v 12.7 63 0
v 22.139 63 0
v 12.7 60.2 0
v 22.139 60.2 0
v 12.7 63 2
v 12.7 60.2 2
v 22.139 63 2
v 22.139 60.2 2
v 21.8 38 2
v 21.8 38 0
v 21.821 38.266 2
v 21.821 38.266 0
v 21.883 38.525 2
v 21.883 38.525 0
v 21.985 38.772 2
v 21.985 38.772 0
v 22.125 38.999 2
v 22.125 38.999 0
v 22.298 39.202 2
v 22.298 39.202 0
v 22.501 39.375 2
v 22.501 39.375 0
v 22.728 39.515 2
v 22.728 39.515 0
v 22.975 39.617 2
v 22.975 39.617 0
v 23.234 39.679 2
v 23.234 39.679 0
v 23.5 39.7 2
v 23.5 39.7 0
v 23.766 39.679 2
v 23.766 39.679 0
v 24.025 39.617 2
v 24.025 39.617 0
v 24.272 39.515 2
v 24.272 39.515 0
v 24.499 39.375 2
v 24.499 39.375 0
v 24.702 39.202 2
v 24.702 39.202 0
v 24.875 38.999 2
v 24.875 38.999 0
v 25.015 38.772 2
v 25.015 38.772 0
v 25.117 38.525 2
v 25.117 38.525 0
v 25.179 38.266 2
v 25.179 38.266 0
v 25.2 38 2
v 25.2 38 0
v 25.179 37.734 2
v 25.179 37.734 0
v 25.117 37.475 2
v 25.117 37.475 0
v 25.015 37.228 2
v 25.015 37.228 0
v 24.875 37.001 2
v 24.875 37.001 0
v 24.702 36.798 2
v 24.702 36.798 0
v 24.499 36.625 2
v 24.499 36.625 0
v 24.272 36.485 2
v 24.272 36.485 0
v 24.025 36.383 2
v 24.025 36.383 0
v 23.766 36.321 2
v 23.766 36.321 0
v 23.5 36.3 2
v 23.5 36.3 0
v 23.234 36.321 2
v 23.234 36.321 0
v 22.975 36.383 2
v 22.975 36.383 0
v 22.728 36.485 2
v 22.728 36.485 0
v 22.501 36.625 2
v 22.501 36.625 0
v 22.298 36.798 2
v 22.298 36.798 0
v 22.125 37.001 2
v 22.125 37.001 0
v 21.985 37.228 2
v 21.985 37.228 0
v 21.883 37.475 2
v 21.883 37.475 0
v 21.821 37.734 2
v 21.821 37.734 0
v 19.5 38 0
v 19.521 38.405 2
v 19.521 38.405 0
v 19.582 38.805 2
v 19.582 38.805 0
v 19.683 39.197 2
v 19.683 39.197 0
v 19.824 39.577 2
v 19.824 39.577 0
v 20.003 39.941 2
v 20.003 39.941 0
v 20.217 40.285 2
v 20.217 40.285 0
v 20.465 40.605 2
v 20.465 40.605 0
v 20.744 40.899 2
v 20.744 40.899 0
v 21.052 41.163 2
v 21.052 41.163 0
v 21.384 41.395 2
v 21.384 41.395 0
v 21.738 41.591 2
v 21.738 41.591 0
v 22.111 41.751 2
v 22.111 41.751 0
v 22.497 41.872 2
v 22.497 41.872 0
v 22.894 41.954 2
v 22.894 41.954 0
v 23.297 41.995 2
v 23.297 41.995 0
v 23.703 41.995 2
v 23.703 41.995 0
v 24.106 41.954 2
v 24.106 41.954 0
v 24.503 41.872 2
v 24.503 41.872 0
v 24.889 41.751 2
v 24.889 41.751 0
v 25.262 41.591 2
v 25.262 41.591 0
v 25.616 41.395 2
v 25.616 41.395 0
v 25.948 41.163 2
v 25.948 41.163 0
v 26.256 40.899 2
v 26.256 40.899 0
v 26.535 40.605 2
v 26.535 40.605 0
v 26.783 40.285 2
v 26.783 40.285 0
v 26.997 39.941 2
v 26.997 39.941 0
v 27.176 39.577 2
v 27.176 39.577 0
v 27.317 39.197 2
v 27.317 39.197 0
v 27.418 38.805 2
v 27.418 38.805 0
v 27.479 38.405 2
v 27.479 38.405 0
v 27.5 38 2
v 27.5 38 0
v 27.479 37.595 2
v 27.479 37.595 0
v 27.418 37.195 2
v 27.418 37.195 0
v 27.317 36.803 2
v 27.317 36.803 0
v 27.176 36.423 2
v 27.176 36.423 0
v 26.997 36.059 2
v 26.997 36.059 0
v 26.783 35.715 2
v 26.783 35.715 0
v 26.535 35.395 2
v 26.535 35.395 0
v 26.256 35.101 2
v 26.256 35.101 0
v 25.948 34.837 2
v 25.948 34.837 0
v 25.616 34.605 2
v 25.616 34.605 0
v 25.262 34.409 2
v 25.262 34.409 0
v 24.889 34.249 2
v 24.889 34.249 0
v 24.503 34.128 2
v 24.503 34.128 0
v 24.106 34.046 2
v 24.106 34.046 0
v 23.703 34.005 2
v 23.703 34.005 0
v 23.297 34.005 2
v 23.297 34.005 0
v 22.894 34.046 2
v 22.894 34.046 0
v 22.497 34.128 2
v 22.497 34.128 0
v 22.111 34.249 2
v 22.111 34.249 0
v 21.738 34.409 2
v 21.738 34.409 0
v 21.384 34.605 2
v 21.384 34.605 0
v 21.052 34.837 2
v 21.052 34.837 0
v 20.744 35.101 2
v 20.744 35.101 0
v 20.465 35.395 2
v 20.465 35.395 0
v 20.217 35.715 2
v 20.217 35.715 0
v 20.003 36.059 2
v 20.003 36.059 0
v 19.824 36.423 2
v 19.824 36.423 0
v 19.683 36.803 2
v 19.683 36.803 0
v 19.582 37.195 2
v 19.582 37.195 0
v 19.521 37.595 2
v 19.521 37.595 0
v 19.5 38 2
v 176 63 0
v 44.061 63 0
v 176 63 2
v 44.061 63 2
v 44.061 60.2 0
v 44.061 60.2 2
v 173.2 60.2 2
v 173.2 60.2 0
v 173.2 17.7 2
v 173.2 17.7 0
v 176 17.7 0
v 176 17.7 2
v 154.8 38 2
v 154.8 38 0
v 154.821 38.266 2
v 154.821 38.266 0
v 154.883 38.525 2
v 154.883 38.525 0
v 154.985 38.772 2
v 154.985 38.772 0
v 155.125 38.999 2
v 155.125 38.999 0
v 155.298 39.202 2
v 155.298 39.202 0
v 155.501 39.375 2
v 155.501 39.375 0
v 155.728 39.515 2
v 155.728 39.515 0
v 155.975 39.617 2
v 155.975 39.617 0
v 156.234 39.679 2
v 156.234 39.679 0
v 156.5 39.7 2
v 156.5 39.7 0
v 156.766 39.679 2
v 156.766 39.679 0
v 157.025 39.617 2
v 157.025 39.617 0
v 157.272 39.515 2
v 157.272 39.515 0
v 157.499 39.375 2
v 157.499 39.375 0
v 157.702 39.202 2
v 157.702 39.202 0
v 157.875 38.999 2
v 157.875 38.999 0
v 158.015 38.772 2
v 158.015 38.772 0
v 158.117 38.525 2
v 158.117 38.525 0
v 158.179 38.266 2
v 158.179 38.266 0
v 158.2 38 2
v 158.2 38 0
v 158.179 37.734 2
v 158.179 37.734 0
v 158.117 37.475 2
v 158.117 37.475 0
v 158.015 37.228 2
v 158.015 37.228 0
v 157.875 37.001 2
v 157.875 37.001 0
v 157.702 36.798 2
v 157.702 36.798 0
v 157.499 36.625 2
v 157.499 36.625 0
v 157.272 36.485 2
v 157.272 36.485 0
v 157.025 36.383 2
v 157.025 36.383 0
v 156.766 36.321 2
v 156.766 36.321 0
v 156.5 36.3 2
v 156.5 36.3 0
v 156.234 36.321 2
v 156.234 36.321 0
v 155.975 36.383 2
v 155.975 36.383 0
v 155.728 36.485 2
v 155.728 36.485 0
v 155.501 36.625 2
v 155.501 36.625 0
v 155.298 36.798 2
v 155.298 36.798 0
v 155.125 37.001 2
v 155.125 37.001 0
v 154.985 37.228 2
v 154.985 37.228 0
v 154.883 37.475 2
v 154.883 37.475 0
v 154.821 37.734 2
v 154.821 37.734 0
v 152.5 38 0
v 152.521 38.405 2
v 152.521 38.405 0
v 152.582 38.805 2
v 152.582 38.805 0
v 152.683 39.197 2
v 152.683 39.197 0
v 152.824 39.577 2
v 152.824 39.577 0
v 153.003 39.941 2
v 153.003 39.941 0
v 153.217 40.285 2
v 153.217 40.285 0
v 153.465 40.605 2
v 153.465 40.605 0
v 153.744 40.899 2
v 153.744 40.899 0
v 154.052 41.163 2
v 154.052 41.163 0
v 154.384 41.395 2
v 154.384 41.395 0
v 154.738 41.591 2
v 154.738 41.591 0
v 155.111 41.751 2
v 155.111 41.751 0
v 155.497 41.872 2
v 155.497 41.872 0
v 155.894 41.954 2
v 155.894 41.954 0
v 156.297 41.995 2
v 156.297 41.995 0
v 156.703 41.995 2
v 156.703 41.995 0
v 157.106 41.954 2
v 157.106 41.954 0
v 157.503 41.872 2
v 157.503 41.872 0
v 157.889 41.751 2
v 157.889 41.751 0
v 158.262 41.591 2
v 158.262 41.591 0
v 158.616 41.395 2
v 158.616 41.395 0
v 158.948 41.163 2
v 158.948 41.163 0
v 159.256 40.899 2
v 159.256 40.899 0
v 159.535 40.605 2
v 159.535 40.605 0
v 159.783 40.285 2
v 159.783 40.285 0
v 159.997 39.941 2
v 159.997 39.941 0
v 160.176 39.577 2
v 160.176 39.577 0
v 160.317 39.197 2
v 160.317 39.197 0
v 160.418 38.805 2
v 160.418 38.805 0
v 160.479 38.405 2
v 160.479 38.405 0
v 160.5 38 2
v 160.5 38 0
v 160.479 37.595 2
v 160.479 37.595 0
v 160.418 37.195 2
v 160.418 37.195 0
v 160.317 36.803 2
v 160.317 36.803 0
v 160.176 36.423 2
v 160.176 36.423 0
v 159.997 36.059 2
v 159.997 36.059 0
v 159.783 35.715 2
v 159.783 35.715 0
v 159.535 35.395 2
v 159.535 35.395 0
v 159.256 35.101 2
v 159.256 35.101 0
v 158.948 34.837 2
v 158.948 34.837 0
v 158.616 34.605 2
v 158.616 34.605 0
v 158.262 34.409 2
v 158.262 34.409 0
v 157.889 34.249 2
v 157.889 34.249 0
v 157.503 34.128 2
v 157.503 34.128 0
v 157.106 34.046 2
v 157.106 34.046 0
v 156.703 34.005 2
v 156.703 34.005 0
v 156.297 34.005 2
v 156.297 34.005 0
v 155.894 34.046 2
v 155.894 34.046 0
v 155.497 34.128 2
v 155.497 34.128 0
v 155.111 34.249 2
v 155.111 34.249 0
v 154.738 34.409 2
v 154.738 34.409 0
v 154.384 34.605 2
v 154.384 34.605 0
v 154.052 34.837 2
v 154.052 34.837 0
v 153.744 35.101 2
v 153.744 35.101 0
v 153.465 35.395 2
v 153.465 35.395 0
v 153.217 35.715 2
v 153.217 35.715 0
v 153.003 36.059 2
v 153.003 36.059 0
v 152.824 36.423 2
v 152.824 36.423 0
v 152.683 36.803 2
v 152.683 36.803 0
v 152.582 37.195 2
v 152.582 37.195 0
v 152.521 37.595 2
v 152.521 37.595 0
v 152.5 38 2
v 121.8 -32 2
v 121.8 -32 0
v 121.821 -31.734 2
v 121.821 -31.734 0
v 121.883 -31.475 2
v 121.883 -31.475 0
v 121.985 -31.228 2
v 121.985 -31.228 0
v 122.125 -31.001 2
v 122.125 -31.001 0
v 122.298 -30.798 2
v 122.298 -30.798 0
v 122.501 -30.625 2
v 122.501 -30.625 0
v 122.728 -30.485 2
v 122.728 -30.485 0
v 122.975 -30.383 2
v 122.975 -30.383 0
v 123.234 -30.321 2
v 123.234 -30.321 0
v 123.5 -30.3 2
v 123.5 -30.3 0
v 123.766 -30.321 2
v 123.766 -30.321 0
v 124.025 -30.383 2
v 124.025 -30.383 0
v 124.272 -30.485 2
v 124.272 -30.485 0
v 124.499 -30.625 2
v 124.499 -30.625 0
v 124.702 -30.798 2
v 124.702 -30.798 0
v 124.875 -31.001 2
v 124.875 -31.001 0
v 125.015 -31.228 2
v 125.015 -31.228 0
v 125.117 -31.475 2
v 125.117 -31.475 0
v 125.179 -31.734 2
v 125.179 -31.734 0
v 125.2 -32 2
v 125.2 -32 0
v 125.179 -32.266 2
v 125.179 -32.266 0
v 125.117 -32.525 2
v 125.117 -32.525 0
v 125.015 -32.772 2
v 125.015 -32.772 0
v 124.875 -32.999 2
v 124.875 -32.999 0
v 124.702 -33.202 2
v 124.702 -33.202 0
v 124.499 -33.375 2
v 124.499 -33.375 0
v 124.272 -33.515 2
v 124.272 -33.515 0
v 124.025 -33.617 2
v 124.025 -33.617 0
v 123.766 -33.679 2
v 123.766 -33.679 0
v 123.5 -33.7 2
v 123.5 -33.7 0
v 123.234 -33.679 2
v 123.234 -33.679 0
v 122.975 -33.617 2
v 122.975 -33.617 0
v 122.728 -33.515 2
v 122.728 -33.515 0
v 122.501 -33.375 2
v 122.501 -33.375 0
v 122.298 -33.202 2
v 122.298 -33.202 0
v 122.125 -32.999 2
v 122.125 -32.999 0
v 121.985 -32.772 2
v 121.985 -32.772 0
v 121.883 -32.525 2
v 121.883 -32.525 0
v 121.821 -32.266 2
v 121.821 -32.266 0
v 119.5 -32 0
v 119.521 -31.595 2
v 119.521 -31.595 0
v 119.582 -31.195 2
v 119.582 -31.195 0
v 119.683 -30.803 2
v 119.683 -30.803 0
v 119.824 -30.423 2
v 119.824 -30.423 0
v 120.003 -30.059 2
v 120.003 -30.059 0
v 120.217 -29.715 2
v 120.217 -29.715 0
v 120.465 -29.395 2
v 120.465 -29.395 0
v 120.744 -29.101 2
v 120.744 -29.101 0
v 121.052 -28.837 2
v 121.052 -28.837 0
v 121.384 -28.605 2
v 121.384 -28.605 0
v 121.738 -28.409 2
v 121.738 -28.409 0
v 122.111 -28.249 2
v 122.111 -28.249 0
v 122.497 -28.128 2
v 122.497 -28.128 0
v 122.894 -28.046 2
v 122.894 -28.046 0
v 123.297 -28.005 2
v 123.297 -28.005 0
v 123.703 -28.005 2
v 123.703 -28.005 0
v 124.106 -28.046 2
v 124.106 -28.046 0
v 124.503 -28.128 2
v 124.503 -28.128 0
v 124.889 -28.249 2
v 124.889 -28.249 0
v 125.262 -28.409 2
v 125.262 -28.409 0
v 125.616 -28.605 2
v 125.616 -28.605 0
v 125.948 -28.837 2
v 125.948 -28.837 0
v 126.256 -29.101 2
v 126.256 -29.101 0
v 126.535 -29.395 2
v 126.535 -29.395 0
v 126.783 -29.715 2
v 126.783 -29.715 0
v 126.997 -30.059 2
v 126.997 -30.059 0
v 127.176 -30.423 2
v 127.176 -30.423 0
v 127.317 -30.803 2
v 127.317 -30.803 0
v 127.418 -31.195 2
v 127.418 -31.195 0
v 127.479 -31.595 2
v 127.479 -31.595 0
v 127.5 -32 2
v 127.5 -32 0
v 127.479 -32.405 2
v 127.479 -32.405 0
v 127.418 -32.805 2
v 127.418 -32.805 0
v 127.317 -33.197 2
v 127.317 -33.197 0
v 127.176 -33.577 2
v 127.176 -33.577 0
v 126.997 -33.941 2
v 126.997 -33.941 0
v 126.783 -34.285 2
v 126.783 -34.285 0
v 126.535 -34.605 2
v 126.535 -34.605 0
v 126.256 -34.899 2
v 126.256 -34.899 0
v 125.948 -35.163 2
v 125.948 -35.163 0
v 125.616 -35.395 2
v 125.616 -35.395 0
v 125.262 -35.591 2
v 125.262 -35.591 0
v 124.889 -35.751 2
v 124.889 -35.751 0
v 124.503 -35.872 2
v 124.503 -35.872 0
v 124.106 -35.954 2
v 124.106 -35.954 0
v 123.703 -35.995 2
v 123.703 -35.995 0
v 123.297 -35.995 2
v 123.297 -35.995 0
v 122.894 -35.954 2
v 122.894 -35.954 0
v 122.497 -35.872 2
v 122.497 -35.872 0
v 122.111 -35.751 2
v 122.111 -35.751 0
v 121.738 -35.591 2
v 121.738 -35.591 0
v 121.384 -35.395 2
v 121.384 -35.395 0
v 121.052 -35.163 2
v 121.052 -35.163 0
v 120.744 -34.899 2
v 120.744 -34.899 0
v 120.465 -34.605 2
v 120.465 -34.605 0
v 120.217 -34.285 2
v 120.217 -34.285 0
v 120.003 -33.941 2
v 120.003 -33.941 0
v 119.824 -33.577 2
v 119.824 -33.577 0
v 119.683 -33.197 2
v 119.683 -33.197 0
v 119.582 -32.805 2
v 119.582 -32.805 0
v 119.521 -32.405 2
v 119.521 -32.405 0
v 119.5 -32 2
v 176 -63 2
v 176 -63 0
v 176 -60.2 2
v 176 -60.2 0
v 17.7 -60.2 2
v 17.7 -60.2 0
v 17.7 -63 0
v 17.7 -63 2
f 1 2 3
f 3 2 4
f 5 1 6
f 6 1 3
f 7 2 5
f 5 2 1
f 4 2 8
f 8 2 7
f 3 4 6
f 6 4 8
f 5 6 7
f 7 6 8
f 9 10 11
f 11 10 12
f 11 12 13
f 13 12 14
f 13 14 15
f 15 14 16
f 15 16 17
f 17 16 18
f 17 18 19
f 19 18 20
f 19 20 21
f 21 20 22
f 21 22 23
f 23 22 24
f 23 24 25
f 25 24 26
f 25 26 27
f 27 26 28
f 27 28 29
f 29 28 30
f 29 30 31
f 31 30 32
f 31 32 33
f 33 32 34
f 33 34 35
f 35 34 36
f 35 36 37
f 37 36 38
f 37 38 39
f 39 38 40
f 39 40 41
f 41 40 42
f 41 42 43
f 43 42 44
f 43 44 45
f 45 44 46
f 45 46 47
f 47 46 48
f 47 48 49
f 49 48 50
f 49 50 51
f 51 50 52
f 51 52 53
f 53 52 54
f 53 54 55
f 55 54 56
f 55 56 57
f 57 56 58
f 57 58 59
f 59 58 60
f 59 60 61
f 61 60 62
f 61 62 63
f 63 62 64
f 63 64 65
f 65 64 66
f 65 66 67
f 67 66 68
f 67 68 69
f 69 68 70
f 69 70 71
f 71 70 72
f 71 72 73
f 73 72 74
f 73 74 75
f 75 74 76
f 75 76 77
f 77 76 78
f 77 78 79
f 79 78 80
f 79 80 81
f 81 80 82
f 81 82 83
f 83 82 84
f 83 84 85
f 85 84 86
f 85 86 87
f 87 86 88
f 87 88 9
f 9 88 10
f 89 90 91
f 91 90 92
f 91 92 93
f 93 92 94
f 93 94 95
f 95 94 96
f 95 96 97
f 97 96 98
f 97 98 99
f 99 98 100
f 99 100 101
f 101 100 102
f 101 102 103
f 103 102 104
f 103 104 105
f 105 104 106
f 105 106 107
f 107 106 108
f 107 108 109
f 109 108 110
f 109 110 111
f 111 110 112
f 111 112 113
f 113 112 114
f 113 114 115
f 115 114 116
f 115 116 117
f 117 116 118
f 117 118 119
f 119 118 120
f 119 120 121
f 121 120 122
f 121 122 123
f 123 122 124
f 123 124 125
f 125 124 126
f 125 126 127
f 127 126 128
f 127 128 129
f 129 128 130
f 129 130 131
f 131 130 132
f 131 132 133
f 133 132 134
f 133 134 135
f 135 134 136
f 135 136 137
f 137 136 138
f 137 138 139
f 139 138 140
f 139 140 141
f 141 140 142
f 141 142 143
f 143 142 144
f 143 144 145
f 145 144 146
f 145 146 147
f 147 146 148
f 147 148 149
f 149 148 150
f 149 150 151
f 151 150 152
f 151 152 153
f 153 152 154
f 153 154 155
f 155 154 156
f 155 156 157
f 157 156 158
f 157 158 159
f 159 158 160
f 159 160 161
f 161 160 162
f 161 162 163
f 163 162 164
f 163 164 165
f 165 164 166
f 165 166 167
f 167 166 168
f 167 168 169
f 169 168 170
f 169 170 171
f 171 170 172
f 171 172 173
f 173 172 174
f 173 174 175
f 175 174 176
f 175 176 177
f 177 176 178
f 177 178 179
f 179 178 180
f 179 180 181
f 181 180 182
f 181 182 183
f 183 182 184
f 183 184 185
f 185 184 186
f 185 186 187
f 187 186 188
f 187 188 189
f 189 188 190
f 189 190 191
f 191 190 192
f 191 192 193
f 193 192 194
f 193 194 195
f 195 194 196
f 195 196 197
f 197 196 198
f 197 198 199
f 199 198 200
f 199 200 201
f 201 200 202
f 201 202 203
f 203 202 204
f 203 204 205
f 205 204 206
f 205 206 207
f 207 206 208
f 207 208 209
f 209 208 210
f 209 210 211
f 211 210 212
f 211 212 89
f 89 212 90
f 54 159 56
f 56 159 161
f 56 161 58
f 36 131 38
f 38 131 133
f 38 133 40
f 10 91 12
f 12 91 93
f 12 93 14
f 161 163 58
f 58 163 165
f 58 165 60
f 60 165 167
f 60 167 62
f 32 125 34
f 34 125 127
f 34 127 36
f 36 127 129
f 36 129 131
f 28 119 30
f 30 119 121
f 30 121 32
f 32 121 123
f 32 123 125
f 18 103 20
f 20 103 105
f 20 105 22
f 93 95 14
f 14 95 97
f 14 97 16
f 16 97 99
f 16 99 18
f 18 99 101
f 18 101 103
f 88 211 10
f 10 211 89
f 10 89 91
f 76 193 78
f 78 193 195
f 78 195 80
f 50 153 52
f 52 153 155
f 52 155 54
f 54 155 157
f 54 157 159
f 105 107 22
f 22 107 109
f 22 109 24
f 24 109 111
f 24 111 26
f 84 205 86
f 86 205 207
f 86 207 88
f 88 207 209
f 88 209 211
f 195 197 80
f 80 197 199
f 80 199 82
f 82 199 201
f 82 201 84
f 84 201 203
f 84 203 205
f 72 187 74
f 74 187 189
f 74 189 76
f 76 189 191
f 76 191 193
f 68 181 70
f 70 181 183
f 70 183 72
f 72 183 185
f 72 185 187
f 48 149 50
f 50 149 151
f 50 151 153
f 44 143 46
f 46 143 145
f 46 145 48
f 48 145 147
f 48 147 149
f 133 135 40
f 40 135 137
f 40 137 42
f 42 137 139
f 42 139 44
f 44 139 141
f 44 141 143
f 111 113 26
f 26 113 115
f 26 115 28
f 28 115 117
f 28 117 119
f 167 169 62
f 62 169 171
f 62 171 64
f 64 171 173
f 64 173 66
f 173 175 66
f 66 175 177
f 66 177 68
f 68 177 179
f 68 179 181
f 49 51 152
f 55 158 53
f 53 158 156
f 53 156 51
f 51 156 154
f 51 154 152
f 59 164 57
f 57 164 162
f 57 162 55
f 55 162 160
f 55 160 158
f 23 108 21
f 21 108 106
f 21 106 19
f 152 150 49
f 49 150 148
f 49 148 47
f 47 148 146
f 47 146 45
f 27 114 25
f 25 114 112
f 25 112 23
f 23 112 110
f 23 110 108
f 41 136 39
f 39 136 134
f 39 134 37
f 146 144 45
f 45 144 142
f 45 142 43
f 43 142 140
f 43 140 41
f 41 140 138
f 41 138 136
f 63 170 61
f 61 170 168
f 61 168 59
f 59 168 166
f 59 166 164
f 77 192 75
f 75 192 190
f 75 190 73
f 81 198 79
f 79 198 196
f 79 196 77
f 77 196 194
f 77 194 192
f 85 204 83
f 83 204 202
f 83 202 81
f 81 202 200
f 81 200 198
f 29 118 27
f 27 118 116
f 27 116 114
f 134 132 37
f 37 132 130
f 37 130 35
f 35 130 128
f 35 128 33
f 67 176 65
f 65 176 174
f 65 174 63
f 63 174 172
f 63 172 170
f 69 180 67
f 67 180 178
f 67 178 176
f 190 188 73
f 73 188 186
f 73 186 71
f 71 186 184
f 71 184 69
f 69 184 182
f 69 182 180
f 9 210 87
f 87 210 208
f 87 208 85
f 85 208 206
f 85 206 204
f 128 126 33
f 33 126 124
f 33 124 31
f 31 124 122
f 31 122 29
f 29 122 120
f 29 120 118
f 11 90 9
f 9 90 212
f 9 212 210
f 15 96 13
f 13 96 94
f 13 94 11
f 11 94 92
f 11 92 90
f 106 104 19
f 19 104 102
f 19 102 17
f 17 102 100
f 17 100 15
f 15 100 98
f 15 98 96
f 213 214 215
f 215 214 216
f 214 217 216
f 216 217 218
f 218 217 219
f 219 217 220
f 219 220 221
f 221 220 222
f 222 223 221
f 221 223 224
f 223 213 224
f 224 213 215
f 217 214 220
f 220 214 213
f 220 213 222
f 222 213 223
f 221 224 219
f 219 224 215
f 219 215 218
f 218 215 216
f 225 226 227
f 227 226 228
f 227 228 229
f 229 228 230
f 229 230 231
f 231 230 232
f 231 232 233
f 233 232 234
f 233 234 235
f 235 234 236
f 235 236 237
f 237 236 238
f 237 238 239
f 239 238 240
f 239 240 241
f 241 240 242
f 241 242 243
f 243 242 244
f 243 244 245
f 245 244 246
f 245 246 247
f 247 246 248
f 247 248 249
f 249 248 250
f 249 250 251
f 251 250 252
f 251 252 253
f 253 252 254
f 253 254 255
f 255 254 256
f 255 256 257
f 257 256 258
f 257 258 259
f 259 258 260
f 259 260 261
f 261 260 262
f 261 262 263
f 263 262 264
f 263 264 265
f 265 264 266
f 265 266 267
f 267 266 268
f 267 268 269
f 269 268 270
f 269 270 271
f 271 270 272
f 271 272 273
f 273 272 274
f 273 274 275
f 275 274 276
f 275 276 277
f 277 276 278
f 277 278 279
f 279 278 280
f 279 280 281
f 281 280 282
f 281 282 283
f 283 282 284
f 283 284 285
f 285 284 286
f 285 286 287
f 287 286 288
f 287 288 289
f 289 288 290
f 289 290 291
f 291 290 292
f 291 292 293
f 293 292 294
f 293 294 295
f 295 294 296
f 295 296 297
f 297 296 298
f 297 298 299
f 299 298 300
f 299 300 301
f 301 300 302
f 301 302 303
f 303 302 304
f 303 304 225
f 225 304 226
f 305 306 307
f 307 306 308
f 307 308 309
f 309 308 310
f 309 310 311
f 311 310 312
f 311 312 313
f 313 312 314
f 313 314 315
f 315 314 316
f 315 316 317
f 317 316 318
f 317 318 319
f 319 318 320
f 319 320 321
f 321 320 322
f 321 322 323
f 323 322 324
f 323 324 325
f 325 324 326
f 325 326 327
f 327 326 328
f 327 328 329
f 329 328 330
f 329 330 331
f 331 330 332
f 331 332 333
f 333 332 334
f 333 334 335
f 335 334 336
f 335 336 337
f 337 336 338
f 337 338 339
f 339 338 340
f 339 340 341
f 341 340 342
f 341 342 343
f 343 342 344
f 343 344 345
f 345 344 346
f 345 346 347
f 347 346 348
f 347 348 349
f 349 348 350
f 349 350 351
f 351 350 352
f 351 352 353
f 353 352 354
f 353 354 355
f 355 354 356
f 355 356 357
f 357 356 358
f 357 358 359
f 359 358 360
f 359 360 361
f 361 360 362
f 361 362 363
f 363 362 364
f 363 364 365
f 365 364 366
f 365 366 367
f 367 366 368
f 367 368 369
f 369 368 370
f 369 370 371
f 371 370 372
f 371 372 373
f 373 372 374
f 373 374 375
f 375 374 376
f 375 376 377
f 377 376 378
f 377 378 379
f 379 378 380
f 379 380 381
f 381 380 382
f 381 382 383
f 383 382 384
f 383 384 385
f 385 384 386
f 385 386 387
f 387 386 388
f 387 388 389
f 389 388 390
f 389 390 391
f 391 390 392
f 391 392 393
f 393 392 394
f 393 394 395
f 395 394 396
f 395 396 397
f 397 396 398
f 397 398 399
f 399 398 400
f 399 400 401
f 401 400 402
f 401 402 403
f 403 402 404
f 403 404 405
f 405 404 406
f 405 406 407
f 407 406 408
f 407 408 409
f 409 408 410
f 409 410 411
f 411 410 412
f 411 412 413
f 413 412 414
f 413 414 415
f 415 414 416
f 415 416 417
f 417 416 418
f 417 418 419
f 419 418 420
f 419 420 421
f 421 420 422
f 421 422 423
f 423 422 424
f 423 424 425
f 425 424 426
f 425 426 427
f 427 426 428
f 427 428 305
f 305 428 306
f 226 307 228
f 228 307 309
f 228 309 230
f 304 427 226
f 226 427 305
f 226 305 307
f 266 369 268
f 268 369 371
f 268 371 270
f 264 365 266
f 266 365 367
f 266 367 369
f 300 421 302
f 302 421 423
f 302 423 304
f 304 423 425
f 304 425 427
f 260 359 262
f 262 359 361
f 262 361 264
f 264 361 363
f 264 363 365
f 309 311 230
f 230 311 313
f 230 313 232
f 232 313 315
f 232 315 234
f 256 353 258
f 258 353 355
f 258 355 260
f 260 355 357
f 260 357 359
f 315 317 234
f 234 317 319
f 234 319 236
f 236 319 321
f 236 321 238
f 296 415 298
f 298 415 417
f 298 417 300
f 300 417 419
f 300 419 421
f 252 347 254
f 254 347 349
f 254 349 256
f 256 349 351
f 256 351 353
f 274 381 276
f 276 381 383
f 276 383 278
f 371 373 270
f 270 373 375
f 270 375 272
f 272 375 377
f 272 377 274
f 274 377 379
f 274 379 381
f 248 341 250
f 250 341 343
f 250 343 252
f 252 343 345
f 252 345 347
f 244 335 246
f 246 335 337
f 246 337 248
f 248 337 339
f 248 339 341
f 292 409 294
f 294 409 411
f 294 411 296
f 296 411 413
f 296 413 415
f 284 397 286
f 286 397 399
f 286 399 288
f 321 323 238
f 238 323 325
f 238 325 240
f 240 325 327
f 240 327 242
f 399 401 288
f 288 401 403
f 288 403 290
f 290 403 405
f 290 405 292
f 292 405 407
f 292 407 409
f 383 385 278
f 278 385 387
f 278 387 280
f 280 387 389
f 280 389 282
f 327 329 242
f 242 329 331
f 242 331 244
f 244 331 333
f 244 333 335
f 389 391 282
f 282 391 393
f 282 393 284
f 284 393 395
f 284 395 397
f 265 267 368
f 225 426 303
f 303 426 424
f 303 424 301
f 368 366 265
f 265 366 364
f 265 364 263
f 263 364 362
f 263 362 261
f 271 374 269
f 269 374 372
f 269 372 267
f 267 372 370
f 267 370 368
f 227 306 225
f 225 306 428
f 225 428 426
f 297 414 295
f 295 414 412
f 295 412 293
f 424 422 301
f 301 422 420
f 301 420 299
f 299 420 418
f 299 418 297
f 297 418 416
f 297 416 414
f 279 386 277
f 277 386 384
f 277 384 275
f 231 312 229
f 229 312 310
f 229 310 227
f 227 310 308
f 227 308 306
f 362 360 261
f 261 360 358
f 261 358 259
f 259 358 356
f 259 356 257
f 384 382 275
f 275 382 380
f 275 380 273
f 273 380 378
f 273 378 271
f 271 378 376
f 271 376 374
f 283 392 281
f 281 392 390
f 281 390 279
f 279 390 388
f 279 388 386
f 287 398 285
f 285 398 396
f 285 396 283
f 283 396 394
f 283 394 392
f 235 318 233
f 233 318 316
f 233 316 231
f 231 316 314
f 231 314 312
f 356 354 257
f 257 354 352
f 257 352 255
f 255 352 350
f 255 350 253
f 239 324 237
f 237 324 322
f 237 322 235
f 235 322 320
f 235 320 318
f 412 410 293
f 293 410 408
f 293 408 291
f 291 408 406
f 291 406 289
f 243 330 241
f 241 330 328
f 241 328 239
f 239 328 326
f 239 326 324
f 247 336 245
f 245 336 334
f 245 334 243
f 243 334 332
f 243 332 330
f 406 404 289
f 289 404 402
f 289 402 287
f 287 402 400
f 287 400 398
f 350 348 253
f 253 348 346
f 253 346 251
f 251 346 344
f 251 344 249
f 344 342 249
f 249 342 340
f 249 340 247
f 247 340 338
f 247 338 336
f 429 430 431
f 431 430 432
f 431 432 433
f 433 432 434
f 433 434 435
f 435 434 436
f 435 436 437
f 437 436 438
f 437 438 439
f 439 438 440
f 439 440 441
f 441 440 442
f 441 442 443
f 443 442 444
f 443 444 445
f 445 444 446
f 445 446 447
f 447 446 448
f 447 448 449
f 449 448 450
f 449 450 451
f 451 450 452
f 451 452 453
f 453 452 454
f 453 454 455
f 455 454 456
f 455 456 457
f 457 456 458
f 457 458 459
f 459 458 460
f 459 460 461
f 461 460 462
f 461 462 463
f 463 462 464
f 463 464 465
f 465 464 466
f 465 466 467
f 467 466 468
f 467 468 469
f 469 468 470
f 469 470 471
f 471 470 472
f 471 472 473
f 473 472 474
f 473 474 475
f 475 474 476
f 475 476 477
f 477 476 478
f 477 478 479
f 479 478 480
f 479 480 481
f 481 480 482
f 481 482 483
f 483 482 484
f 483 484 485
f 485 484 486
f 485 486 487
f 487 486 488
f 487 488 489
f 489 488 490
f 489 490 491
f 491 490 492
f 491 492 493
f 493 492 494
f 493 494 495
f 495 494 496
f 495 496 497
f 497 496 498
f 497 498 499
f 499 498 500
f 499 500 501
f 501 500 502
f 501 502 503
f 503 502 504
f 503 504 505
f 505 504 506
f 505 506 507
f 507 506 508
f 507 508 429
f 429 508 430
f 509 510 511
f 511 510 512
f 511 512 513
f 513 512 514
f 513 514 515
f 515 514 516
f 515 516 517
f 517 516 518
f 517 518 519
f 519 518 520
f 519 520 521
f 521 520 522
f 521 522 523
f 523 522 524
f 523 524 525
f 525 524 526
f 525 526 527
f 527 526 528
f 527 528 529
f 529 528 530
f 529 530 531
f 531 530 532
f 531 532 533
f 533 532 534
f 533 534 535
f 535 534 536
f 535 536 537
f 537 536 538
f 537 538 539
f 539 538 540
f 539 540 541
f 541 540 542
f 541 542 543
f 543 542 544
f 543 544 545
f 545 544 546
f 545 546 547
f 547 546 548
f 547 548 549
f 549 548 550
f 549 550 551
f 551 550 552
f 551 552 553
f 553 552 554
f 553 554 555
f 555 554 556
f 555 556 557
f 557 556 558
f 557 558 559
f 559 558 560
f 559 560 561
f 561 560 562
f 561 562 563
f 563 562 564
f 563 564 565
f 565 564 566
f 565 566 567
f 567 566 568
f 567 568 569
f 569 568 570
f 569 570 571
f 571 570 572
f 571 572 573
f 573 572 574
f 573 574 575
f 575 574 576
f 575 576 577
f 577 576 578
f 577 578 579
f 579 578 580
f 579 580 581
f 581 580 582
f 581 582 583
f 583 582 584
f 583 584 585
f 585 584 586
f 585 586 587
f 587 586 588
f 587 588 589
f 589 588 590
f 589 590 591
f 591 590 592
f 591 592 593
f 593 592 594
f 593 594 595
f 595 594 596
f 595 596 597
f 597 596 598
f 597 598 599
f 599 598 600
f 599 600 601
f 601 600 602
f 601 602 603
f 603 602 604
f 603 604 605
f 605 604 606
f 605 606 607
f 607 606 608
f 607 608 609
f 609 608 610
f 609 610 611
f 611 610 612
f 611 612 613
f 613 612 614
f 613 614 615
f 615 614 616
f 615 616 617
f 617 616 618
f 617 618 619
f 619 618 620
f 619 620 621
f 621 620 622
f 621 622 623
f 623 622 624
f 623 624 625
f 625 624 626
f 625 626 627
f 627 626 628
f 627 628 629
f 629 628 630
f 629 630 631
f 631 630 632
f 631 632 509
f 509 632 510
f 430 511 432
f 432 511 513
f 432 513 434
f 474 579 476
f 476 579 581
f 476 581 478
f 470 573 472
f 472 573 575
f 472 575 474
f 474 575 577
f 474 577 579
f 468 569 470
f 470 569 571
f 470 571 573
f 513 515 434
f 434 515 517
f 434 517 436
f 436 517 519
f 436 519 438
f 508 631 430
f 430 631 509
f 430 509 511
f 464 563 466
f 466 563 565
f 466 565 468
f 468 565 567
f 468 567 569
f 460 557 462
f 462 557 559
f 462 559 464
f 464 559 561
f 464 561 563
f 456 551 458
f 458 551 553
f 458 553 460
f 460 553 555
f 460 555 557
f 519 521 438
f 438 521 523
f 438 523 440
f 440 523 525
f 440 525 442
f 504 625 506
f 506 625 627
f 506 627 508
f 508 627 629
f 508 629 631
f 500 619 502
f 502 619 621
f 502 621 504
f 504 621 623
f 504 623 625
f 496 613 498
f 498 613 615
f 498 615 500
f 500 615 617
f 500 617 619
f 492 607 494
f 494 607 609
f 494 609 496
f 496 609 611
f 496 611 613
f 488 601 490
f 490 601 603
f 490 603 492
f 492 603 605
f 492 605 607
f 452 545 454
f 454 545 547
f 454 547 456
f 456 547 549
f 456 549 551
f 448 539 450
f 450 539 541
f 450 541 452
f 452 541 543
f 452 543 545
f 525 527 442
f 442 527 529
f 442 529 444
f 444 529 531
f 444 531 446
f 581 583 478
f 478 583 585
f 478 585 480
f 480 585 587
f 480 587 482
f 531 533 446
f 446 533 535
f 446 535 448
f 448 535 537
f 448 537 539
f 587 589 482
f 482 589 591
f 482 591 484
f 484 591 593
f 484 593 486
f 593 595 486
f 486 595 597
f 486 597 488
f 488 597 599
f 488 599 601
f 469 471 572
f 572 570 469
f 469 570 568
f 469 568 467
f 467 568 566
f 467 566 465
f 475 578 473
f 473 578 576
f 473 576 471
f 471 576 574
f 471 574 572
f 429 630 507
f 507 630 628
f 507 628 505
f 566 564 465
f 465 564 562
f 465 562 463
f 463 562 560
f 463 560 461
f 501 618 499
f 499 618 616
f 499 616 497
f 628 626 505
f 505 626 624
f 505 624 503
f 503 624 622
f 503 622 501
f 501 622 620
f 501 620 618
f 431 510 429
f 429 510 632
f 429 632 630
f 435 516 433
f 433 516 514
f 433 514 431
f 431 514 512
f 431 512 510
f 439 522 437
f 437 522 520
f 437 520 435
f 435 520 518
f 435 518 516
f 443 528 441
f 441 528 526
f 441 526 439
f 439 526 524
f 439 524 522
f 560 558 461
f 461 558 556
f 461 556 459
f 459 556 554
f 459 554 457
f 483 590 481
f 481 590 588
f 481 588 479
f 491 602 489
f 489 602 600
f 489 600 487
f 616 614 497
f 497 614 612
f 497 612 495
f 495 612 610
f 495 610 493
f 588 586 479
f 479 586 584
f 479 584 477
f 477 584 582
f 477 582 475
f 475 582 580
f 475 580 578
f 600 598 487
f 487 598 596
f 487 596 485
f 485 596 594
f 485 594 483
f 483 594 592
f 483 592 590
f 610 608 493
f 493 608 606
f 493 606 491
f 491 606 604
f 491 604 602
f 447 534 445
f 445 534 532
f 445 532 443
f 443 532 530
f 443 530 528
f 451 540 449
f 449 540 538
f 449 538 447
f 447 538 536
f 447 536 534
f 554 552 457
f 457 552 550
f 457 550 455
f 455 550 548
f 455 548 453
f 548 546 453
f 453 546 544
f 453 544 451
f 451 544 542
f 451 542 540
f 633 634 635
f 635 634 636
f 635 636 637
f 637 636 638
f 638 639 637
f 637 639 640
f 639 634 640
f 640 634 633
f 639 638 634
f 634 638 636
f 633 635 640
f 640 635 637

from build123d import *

# Parameters (mm, degrees)
SKETCH1_W           = 129.139207087
SKETCH1_H           = 2.8
SKETCH1_W_2         = 9.439207087
SKETCH1_R           = 4
SKETCH1_R_2         = 1.7
SKETCH1_W_3         = 2.8
SKETCH1_H_2         = 45.3
SKETCH1_W_4         = 158.3
BOSS_EXTRUDE1_DEPTH = 2


with BuildPart() as part:
    # Sketch1 → Boss-Extrude1 (new body)
    # profile 1 of 7: a face of its own
    with BuildSketch(Plane.XY):
        with Locations((108.630396457, 61.6)):
            Rectangle(SKETCH1_W, SKETCH1_H)
    # profile 2 of 7: a face of its own
    with BuildSketch(Plane.XY):
        with Locations((17.419603544, 61.6)):
            Rectangle(SKETCH1_W_2, SKETCH1_H)
    # profile 3 of 7: a face of its own
    with BuildSketch(Plane.XY):
        with Locations((23.5, 38)):
            Circle(SKETCH1_R)
        with Locations((23.5, 38)):
            Circle(SKETCH1_R_2, mode=Mode.SUBTRACT)
    # profile 4 of 7: a face of its own
    with BuildSketch(Plane.XY):
        with Locations((174.6, 40.35)):
            Rectangle(SKETCH1_W_3, SKETCH1_H_2)
    # profile 5 of 7: a face of its own
    with BuildSketch(Plane.XY):
        with Locations((156.5, 38)):
            Circle(SKETCH1_R)
        with Locations((156.5, 38)):
            Circle(SKETCH1_R_2, mode=Mode.SUBTRACT)
    # profile 6 of 7: a face of its own
    with BuildSketch(Plane.XY):
        with Locations((123.5, -32)):
            Circle(SKETCH1_R)
        with Locations((123.5, -32)):
            Circle(SKETCH1_R_2, mode=Mode.SUBTRACT)
    # profile 7 of 7: a face of its own
    with BuildSketch(Plane.XY):
        with Locations((96.85, -61.6)):
            Rectangle(SKETCH1_W_4, SKETCH1_H)
    extrude(amount=BOSS_EXTRUDE1_DEPTH)


solid = part.part
